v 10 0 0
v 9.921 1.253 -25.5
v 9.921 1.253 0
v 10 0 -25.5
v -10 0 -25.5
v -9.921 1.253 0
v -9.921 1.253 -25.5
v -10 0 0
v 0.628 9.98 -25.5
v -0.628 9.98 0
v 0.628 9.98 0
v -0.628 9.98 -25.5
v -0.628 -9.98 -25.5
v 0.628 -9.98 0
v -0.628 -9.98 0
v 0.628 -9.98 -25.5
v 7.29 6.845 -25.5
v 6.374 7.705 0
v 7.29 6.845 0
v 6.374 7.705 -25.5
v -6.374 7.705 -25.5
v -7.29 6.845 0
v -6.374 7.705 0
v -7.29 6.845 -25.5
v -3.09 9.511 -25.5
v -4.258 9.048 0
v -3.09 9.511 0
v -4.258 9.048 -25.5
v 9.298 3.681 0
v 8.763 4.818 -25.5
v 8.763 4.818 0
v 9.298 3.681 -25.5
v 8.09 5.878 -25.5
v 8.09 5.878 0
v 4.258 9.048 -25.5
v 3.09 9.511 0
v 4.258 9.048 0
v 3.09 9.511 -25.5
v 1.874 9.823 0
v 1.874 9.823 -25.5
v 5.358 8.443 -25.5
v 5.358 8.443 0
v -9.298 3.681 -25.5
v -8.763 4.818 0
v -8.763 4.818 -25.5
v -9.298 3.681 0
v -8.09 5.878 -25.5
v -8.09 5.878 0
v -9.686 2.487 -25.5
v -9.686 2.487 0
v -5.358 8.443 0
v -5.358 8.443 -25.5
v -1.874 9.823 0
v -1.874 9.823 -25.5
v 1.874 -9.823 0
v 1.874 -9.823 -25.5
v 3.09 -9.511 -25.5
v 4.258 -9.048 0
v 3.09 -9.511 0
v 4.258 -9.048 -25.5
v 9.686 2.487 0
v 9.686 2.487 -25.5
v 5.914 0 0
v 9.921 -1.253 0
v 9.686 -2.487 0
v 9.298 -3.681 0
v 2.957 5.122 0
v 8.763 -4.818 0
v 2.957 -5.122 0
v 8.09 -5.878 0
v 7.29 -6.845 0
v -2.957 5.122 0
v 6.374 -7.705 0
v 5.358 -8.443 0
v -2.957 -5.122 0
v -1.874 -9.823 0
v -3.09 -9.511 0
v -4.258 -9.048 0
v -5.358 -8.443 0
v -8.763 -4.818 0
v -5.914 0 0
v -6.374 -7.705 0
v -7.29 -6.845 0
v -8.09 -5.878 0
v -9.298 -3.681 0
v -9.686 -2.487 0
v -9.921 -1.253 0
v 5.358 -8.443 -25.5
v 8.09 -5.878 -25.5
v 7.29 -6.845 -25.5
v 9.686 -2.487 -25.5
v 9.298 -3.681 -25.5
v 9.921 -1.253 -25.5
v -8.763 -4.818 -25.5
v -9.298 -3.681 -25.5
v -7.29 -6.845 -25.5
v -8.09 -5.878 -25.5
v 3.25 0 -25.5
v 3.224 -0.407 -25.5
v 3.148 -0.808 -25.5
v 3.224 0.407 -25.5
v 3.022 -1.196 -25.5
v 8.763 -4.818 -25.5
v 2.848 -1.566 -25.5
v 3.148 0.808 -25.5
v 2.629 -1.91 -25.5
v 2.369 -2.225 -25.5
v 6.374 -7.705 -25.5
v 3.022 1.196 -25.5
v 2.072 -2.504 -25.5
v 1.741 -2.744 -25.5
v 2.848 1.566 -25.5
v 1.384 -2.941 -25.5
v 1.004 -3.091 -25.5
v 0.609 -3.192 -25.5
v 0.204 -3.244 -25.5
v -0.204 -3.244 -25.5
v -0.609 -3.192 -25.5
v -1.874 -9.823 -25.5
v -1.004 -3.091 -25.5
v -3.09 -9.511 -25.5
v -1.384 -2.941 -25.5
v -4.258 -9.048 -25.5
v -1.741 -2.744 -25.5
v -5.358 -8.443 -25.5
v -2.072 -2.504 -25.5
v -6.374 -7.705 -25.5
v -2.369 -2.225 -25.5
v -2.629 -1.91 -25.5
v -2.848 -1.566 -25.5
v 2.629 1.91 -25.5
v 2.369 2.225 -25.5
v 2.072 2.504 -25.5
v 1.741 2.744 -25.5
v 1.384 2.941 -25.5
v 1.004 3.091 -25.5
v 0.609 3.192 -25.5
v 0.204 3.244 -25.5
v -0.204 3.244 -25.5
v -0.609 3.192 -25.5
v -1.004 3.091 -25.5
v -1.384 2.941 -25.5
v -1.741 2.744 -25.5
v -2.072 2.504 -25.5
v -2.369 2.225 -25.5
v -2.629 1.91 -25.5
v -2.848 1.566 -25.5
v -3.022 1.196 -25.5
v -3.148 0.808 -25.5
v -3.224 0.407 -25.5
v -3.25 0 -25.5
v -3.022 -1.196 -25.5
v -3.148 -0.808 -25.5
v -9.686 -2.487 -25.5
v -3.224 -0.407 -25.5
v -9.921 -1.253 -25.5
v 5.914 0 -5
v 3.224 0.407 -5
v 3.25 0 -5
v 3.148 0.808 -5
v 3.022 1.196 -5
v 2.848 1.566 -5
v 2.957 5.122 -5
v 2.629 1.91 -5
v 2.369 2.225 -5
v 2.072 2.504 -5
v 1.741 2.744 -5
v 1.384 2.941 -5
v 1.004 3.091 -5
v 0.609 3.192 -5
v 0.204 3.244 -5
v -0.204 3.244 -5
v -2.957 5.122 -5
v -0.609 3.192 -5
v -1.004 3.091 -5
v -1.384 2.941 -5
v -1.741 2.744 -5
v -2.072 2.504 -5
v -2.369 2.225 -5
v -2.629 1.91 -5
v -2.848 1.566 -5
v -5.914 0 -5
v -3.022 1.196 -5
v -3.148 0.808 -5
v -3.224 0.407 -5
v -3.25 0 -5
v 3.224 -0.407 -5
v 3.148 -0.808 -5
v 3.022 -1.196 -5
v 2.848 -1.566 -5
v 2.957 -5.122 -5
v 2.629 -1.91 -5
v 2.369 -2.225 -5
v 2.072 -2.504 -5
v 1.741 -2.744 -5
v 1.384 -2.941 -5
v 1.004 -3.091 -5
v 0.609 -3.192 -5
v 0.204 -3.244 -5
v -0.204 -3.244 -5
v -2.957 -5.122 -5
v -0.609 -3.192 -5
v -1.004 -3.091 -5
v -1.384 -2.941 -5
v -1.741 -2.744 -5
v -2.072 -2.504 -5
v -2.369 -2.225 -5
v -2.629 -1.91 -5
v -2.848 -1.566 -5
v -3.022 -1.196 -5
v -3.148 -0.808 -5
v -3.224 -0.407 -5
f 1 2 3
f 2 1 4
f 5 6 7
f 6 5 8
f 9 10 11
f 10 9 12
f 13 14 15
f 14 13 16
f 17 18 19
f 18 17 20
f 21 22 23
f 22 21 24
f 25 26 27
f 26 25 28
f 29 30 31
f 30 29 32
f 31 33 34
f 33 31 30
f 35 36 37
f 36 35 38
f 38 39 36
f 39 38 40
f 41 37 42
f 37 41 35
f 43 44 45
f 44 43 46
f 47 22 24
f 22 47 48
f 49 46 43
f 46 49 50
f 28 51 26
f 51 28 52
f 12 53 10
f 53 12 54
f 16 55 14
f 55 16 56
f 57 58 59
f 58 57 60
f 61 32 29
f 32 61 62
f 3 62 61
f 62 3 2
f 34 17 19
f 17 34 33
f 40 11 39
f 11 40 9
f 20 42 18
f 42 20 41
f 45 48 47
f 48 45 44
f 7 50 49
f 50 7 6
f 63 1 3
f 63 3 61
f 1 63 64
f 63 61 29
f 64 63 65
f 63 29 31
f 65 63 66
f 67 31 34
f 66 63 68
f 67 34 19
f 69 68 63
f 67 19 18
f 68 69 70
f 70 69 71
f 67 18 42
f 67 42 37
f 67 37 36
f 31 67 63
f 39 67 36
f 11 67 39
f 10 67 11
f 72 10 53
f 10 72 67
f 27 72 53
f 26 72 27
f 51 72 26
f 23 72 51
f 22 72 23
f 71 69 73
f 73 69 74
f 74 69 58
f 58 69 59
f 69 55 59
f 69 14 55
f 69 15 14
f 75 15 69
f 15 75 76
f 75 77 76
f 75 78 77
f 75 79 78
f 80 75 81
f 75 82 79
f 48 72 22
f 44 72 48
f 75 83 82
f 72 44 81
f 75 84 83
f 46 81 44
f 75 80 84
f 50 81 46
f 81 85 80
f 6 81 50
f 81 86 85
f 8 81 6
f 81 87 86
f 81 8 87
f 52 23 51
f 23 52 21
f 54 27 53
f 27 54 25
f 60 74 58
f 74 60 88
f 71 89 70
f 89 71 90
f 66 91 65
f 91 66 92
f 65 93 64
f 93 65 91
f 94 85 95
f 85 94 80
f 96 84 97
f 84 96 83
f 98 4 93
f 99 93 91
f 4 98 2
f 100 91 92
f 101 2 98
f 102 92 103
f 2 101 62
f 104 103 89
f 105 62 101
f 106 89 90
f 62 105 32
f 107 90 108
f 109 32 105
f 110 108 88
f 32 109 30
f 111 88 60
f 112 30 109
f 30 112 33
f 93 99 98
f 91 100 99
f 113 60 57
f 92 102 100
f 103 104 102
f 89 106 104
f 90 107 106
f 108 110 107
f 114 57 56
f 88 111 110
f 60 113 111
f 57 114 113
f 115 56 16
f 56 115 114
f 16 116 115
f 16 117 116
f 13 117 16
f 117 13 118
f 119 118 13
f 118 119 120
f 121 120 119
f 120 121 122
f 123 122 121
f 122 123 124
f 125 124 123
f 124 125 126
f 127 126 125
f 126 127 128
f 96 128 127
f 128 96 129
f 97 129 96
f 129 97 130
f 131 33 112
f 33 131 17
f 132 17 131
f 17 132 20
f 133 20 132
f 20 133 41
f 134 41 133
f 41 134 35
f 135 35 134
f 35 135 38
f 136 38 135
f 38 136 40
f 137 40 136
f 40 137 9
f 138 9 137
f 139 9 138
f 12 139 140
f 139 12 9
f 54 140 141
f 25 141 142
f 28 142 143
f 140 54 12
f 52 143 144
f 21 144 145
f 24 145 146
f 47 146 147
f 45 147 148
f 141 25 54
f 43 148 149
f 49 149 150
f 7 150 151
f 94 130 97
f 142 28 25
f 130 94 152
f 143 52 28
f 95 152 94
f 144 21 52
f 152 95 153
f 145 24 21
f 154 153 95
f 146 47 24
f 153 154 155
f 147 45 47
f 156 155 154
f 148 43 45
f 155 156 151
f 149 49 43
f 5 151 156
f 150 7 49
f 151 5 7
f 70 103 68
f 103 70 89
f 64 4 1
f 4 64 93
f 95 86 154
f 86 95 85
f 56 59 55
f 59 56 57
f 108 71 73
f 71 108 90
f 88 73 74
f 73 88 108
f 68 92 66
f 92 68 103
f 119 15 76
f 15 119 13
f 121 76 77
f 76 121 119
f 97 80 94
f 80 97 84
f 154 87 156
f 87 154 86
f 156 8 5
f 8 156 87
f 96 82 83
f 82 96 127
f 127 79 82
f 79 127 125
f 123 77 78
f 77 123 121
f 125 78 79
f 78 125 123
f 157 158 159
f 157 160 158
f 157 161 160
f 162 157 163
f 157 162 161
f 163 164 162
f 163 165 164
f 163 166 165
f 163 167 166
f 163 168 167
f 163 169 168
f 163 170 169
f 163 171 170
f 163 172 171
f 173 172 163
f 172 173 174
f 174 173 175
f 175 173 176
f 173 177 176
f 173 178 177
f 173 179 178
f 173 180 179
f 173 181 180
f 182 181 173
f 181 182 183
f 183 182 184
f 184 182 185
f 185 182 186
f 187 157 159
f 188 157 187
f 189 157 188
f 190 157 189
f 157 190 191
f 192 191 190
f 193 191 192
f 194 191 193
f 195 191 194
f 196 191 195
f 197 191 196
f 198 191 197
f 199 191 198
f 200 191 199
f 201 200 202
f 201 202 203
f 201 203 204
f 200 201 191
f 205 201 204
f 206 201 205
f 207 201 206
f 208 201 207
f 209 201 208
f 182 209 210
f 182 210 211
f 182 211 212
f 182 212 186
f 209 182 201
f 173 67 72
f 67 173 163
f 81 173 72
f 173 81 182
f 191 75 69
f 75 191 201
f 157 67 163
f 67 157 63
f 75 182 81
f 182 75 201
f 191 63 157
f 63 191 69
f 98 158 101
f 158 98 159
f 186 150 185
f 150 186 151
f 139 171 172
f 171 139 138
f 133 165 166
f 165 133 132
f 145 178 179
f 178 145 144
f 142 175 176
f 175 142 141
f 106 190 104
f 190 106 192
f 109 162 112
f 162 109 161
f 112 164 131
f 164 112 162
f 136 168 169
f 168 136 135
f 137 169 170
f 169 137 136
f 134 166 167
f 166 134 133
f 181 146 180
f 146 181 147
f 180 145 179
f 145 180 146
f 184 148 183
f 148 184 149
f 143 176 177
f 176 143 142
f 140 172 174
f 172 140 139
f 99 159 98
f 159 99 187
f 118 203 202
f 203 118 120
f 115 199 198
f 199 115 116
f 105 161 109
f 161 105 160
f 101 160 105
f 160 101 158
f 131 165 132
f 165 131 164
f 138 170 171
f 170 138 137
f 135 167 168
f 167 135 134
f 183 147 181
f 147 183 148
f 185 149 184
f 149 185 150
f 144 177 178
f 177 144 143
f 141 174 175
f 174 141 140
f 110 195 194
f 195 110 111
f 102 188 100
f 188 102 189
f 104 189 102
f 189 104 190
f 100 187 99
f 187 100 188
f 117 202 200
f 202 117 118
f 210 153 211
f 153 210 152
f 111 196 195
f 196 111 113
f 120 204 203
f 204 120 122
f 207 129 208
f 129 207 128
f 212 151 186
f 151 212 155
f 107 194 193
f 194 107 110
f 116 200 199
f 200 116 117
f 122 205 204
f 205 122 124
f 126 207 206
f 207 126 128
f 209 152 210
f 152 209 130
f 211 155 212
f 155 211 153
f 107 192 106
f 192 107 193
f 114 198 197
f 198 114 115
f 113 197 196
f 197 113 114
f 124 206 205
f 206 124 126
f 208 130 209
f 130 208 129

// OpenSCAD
$fn = 50;

difference() {
	union() {
		translate(v = [0, 0, -25.5]) {
			cylinder(h = 25.5, r = 10.0);
		}
	}
	union() {
		translate(v = [0, 0, 0]) {
			rotate(a = [0, 0, 0]) {
				difference() {
					union() {
						translate(v = [0, 0, -5]) {
							linear_extrude(height = 5) {
								polygon(points = [[5.914249999999999, 0.0], [2.957125, 5.1218907443321156], [-2.9571249999999982, 5.1218907443321156], [-5.914249999999999, 7.242867331857232e-16], [-2.9571250000000022, -5.121890744332115], [2.9571249999999956, -5.121890744332118]]);
							}
						}
					}
					union();
				}
			}
		}
		#translate(v = [0, 0, -100.0]) {
			cylinder(h = 200, r = 3.25);
		}
	}
}
